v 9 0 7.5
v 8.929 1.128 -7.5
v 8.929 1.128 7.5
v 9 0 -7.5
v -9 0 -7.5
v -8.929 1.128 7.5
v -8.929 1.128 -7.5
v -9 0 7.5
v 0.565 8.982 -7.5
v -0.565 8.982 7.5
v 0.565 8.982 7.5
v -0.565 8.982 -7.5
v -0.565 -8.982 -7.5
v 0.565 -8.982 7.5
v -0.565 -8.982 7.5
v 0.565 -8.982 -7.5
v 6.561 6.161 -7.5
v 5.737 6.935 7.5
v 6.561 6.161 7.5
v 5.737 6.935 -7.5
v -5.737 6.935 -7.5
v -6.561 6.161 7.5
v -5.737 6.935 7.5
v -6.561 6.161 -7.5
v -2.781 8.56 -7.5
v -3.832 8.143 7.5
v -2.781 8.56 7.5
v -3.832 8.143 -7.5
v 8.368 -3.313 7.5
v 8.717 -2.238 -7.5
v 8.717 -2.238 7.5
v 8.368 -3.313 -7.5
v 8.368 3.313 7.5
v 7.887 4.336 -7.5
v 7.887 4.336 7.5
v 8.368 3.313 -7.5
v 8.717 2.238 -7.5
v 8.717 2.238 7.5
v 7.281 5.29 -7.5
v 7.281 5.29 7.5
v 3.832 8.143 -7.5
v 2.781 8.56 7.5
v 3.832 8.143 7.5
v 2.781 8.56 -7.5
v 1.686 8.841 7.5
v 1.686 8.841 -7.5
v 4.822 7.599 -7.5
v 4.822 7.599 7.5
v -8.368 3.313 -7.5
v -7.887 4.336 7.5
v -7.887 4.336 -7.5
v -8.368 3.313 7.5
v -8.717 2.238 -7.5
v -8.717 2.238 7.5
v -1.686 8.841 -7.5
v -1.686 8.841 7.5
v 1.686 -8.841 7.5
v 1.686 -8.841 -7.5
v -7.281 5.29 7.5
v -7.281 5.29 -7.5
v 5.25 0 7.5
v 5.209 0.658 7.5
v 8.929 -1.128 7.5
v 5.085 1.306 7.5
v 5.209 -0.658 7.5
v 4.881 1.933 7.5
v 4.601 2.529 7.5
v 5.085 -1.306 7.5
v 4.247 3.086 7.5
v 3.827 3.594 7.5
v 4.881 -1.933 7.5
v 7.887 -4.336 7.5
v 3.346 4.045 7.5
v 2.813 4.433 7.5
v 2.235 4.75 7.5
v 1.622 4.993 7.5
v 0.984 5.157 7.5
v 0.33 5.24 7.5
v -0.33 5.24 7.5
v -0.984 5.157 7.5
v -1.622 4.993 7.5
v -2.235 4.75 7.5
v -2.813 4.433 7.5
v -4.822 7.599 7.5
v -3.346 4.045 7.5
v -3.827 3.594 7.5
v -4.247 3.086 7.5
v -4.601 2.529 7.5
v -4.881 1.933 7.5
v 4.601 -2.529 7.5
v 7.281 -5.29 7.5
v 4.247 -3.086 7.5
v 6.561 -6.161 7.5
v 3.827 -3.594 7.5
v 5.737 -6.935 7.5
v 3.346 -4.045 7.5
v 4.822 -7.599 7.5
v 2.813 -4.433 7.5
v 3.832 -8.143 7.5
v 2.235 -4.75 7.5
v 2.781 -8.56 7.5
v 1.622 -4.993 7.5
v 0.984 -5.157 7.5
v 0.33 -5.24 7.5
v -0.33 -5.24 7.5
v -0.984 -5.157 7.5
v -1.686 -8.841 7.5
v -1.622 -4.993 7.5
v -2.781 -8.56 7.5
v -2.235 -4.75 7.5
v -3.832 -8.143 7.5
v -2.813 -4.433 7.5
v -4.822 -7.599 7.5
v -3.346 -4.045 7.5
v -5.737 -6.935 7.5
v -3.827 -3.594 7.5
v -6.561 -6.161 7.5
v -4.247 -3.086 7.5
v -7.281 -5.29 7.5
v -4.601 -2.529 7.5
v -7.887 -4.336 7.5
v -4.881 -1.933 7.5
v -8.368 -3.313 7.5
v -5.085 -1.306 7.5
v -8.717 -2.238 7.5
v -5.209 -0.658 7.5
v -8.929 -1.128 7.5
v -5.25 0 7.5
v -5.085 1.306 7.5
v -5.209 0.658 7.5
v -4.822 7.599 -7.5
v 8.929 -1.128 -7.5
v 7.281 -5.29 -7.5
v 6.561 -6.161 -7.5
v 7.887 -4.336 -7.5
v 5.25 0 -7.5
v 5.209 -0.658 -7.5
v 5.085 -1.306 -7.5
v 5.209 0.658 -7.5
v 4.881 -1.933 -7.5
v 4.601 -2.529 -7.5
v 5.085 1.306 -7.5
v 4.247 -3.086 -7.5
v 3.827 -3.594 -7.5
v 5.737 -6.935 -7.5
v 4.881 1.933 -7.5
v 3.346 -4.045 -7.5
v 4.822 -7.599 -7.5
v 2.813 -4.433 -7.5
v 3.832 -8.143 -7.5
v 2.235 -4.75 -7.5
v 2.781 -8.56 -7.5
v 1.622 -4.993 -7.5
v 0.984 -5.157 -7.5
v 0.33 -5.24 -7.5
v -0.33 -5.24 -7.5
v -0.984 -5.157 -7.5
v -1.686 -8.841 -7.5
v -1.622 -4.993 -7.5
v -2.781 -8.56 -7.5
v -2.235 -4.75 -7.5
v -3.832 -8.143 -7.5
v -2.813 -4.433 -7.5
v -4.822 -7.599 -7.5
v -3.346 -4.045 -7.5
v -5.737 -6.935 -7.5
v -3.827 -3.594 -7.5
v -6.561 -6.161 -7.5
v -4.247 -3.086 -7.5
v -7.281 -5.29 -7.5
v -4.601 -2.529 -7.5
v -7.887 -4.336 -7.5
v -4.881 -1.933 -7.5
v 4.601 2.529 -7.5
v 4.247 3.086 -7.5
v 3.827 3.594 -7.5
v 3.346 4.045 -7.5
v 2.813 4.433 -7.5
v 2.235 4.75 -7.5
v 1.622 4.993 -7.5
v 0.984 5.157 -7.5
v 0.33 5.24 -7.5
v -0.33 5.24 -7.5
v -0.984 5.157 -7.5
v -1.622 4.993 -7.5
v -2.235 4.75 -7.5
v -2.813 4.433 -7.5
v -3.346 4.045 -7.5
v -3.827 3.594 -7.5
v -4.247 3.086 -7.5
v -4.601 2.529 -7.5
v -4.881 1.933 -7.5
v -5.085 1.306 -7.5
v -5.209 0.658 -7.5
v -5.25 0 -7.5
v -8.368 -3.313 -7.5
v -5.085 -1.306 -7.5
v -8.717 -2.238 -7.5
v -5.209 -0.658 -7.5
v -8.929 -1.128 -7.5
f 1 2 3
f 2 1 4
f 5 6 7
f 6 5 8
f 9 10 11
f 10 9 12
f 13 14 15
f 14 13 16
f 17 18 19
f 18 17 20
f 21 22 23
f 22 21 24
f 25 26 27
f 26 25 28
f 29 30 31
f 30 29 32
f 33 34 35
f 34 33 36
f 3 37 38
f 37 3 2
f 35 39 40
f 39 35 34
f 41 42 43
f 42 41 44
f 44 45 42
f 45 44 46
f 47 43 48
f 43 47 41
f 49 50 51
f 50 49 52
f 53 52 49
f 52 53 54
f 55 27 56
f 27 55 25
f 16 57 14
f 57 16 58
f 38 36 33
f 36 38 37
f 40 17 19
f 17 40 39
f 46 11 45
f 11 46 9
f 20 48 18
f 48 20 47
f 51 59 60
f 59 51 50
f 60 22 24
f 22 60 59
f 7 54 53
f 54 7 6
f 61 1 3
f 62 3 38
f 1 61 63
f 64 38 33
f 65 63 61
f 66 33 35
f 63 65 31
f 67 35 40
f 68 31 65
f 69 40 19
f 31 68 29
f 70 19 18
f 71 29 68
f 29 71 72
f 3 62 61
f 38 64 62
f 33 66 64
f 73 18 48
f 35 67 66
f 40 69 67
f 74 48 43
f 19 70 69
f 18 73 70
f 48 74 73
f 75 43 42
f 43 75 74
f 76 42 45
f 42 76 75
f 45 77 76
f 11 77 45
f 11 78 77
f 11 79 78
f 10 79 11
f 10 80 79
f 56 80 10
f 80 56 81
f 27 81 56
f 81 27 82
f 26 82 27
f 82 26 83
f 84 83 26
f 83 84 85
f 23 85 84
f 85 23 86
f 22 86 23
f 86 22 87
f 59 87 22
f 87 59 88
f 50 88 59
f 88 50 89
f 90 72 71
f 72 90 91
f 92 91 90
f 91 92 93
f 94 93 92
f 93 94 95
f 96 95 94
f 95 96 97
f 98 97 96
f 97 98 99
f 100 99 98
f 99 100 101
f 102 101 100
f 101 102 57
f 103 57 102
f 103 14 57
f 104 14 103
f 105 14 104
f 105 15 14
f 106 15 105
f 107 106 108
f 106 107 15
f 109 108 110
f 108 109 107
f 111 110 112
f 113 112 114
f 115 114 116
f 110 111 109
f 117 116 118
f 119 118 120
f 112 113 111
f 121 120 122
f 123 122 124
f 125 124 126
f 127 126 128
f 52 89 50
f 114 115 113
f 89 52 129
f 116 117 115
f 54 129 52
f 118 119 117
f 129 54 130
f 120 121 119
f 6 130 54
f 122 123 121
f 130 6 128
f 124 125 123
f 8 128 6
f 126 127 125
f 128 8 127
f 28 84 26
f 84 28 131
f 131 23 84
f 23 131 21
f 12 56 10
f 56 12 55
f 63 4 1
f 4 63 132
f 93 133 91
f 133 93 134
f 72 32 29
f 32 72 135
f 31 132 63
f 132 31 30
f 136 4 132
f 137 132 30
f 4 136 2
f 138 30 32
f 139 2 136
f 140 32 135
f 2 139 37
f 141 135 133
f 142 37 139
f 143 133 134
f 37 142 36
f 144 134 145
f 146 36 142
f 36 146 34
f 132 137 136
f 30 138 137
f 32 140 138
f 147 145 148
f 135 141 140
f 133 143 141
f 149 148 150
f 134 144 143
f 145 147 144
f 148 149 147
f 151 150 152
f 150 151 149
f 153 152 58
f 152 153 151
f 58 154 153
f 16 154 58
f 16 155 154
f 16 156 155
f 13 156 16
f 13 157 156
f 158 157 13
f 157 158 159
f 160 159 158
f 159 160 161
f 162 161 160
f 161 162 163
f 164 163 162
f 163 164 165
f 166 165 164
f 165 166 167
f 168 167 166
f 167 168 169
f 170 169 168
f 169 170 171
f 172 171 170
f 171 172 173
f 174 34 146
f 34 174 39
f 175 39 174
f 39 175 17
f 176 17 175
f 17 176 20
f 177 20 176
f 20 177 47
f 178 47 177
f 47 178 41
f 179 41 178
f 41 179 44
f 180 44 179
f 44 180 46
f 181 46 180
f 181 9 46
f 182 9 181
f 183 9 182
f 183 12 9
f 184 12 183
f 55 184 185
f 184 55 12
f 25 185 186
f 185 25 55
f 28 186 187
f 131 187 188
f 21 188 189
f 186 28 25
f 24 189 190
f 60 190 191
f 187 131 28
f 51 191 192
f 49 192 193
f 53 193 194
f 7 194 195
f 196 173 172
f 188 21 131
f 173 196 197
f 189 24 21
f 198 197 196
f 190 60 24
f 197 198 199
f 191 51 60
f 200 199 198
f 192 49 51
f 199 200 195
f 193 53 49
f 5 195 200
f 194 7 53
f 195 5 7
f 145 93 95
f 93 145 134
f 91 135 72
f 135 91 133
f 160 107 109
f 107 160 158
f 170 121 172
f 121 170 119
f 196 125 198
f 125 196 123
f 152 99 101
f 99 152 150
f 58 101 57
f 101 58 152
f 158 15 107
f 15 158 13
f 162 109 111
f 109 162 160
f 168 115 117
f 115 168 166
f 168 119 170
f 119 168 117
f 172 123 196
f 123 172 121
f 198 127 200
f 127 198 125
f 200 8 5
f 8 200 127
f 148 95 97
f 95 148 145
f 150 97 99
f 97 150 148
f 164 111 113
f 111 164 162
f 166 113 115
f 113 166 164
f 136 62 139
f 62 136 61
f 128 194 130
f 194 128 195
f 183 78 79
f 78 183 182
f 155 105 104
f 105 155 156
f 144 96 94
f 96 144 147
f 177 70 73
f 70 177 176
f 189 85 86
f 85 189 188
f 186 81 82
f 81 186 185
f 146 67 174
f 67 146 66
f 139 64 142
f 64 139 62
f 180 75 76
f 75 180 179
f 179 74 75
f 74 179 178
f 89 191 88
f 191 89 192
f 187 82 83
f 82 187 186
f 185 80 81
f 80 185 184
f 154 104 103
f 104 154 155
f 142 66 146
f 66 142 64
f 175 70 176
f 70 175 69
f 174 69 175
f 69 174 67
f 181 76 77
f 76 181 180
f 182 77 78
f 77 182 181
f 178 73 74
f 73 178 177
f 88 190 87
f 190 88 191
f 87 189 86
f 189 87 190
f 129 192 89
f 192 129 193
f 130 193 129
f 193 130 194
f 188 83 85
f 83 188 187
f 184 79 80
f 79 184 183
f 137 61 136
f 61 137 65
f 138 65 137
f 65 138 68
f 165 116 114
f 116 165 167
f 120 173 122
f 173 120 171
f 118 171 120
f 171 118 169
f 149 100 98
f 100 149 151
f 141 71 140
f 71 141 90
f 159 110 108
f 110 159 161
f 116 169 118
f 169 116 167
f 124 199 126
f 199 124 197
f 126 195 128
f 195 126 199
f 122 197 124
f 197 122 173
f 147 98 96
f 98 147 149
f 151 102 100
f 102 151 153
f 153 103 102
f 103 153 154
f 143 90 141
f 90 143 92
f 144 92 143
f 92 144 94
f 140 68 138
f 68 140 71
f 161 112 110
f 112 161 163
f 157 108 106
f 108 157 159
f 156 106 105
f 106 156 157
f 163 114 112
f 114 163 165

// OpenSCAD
$fn = 50;


difference() {
	union() {
		translate(v = [0, 0, -7.5000000000]) {
			cylinder(h = 15, r = 9.0000000000);
		}
	}
	union() {
		translate(v = [0, 0, -100.0000000000]) {
			cylinder(h = 200, r = 5.2500000000);
		}
	}
}
